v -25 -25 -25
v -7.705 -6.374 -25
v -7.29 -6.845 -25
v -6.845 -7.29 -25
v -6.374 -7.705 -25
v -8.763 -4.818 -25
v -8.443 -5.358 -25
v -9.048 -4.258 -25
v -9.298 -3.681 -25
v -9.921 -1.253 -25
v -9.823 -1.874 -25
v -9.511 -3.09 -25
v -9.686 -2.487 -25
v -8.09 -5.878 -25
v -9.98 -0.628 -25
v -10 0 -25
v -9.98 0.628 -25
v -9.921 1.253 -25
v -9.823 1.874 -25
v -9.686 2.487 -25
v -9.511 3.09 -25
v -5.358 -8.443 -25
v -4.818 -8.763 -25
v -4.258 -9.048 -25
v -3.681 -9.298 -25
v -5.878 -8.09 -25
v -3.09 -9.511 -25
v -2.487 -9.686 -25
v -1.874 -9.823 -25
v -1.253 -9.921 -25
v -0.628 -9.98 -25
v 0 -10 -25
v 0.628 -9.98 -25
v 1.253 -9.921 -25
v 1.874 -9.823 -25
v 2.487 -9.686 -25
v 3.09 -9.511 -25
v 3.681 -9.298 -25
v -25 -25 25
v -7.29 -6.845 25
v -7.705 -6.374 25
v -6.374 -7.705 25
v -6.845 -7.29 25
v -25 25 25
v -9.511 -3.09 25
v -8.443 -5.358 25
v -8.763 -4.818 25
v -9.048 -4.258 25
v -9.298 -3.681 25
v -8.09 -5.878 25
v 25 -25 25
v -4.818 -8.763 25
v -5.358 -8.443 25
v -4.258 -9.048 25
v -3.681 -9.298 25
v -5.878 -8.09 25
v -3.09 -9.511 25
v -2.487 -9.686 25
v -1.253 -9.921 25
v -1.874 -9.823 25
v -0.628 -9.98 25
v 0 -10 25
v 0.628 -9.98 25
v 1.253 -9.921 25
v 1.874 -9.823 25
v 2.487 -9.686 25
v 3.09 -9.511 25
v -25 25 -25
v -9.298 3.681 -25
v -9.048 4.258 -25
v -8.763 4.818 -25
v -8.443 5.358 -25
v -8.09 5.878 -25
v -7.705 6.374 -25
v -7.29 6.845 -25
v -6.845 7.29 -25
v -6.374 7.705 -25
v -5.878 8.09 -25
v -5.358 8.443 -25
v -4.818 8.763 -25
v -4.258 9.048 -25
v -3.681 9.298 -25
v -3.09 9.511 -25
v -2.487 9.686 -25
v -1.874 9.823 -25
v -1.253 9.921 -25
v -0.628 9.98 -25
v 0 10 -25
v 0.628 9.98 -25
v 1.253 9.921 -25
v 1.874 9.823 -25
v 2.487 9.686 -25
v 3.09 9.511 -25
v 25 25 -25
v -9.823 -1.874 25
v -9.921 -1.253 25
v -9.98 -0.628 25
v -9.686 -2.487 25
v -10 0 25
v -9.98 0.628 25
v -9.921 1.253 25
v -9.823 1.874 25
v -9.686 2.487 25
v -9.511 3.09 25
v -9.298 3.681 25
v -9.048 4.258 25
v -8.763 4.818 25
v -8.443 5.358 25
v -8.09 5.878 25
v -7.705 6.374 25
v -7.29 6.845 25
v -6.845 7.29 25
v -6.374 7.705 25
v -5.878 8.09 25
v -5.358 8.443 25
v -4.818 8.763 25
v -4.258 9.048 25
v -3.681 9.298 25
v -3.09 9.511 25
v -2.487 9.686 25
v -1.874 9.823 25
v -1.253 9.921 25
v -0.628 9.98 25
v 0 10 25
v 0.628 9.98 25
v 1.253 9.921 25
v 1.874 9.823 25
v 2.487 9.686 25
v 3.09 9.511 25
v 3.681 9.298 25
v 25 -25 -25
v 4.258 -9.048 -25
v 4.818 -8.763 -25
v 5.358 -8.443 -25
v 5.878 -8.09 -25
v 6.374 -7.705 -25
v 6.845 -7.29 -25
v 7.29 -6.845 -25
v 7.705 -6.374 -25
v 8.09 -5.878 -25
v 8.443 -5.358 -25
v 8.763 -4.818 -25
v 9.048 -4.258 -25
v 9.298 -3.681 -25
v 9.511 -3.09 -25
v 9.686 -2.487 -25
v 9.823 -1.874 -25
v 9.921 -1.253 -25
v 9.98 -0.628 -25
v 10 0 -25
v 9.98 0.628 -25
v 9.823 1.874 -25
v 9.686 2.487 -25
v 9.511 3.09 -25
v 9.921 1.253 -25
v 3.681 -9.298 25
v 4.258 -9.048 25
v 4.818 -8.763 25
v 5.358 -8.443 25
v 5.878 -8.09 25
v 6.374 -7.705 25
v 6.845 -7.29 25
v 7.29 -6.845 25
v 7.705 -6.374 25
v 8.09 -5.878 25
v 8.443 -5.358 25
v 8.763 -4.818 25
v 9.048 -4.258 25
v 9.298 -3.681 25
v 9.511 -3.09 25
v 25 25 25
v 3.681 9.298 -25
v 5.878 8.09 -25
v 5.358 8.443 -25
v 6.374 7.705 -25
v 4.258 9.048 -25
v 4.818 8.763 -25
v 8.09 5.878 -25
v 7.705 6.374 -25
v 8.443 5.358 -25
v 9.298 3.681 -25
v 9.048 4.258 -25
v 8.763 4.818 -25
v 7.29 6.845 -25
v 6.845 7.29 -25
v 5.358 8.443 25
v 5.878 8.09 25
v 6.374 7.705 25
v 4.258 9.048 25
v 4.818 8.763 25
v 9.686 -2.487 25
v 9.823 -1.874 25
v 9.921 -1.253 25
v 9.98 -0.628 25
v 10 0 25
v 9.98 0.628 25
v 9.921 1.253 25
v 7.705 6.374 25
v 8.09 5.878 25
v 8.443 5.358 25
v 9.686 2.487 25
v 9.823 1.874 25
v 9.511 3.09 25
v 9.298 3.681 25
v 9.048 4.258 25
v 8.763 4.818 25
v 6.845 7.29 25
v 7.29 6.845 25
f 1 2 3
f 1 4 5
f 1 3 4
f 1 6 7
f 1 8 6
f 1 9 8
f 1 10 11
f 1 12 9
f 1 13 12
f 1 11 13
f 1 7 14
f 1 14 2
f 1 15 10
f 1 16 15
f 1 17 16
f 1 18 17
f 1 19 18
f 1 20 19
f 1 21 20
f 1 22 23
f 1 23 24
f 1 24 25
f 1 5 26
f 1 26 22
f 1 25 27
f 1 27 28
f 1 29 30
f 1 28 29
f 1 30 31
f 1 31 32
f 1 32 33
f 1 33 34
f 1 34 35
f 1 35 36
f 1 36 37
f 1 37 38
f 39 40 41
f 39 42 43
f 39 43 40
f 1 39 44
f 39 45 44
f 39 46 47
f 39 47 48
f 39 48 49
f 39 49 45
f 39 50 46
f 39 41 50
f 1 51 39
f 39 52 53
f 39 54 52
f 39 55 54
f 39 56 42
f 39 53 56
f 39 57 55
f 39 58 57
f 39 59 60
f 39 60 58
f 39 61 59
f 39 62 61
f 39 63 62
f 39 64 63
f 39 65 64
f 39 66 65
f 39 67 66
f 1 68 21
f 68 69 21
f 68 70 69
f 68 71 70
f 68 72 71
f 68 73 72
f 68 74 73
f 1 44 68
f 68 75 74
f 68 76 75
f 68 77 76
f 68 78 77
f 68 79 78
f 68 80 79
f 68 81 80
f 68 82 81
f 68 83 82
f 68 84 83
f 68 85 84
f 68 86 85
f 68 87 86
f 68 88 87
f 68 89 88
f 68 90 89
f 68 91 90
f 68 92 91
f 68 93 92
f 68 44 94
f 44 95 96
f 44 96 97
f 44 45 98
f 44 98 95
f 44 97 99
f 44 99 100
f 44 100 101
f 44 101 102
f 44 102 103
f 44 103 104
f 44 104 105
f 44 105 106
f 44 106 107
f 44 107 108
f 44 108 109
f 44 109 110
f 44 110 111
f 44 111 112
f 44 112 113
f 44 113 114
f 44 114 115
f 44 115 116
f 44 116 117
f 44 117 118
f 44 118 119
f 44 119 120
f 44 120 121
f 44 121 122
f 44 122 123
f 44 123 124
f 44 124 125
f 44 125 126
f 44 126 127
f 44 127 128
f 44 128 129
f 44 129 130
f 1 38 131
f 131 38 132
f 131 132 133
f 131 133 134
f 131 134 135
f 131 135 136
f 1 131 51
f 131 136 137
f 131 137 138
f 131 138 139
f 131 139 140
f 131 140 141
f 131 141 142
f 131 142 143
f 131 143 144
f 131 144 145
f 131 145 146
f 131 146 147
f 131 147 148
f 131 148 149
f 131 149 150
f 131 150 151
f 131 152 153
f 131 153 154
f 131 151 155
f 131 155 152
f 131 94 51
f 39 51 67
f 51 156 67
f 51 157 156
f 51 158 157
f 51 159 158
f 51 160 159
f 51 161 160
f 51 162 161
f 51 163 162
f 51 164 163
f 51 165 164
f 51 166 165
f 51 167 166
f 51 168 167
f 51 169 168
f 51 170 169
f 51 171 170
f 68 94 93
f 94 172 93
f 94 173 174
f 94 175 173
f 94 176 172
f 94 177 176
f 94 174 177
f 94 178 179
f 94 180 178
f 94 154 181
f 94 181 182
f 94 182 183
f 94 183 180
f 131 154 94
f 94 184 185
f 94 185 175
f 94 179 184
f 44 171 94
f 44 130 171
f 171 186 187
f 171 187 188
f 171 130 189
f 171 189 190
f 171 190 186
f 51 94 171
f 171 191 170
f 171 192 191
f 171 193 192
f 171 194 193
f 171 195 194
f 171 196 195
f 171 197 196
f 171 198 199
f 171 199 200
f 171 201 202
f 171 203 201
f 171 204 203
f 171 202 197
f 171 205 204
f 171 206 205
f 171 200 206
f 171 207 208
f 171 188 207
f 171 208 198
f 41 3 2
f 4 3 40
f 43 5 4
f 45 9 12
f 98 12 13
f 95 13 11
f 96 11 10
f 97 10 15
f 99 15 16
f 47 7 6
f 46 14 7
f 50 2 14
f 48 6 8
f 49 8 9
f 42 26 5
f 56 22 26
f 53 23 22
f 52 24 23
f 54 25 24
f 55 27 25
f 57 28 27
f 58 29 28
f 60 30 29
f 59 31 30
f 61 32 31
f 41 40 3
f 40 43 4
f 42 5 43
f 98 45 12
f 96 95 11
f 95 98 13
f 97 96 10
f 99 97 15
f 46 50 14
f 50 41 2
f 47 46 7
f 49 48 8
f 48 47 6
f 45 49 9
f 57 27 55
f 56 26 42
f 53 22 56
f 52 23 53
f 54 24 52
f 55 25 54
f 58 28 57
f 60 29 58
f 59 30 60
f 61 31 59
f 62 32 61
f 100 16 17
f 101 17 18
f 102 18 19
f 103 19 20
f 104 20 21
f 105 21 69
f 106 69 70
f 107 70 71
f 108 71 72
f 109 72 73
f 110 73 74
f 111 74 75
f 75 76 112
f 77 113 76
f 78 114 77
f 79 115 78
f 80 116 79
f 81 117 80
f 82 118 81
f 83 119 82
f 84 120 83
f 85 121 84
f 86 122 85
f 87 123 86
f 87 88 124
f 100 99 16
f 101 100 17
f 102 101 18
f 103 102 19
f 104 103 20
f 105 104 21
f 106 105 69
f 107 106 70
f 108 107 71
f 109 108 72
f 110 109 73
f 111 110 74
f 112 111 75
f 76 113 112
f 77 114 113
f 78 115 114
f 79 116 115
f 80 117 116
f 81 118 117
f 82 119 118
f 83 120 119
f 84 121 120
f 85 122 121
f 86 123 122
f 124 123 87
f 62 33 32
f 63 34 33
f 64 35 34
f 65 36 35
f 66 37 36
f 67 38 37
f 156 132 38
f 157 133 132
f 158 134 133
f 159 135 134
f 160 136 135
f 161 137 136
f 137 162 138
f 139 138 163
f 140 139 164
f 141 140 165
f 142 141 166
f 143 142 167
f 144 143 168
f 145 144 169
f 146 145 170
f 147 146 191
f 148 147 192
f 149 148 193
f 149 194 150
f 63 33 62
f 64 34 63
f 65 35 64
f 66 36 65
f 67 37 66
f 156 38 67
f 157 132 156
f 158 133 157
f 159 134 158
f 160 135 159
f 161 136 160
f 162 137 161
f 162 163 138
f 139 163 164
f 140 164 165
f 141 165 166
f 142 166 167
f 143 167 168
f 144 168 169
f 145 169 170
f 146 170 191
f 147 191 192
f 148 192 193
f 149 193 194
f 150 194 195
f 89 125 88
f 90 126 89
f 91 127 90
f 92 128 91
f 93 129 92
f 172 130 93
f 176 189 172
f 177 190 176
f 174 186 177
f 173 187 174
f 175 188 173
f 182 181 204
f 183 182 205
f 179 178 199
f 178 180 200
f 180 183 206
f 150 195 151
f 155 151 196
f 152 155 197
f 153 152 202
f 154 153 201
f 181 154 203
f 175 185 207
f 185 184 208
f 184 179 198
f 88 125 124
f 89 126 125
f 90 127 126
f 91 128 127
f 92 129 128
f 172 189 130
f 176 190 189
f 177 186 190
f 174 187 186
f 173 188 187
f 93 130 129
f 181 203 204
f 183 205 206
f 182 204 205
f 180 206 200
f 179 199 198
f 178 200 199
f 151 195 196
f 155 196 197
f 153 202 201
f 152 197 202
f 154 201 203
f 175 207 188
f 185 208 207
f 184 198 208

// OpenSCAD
$fn = 100;

difference() {
    cube([50, 50, 50], center = true);
    cylinder(h = 100, r = 10, center = true);
}
